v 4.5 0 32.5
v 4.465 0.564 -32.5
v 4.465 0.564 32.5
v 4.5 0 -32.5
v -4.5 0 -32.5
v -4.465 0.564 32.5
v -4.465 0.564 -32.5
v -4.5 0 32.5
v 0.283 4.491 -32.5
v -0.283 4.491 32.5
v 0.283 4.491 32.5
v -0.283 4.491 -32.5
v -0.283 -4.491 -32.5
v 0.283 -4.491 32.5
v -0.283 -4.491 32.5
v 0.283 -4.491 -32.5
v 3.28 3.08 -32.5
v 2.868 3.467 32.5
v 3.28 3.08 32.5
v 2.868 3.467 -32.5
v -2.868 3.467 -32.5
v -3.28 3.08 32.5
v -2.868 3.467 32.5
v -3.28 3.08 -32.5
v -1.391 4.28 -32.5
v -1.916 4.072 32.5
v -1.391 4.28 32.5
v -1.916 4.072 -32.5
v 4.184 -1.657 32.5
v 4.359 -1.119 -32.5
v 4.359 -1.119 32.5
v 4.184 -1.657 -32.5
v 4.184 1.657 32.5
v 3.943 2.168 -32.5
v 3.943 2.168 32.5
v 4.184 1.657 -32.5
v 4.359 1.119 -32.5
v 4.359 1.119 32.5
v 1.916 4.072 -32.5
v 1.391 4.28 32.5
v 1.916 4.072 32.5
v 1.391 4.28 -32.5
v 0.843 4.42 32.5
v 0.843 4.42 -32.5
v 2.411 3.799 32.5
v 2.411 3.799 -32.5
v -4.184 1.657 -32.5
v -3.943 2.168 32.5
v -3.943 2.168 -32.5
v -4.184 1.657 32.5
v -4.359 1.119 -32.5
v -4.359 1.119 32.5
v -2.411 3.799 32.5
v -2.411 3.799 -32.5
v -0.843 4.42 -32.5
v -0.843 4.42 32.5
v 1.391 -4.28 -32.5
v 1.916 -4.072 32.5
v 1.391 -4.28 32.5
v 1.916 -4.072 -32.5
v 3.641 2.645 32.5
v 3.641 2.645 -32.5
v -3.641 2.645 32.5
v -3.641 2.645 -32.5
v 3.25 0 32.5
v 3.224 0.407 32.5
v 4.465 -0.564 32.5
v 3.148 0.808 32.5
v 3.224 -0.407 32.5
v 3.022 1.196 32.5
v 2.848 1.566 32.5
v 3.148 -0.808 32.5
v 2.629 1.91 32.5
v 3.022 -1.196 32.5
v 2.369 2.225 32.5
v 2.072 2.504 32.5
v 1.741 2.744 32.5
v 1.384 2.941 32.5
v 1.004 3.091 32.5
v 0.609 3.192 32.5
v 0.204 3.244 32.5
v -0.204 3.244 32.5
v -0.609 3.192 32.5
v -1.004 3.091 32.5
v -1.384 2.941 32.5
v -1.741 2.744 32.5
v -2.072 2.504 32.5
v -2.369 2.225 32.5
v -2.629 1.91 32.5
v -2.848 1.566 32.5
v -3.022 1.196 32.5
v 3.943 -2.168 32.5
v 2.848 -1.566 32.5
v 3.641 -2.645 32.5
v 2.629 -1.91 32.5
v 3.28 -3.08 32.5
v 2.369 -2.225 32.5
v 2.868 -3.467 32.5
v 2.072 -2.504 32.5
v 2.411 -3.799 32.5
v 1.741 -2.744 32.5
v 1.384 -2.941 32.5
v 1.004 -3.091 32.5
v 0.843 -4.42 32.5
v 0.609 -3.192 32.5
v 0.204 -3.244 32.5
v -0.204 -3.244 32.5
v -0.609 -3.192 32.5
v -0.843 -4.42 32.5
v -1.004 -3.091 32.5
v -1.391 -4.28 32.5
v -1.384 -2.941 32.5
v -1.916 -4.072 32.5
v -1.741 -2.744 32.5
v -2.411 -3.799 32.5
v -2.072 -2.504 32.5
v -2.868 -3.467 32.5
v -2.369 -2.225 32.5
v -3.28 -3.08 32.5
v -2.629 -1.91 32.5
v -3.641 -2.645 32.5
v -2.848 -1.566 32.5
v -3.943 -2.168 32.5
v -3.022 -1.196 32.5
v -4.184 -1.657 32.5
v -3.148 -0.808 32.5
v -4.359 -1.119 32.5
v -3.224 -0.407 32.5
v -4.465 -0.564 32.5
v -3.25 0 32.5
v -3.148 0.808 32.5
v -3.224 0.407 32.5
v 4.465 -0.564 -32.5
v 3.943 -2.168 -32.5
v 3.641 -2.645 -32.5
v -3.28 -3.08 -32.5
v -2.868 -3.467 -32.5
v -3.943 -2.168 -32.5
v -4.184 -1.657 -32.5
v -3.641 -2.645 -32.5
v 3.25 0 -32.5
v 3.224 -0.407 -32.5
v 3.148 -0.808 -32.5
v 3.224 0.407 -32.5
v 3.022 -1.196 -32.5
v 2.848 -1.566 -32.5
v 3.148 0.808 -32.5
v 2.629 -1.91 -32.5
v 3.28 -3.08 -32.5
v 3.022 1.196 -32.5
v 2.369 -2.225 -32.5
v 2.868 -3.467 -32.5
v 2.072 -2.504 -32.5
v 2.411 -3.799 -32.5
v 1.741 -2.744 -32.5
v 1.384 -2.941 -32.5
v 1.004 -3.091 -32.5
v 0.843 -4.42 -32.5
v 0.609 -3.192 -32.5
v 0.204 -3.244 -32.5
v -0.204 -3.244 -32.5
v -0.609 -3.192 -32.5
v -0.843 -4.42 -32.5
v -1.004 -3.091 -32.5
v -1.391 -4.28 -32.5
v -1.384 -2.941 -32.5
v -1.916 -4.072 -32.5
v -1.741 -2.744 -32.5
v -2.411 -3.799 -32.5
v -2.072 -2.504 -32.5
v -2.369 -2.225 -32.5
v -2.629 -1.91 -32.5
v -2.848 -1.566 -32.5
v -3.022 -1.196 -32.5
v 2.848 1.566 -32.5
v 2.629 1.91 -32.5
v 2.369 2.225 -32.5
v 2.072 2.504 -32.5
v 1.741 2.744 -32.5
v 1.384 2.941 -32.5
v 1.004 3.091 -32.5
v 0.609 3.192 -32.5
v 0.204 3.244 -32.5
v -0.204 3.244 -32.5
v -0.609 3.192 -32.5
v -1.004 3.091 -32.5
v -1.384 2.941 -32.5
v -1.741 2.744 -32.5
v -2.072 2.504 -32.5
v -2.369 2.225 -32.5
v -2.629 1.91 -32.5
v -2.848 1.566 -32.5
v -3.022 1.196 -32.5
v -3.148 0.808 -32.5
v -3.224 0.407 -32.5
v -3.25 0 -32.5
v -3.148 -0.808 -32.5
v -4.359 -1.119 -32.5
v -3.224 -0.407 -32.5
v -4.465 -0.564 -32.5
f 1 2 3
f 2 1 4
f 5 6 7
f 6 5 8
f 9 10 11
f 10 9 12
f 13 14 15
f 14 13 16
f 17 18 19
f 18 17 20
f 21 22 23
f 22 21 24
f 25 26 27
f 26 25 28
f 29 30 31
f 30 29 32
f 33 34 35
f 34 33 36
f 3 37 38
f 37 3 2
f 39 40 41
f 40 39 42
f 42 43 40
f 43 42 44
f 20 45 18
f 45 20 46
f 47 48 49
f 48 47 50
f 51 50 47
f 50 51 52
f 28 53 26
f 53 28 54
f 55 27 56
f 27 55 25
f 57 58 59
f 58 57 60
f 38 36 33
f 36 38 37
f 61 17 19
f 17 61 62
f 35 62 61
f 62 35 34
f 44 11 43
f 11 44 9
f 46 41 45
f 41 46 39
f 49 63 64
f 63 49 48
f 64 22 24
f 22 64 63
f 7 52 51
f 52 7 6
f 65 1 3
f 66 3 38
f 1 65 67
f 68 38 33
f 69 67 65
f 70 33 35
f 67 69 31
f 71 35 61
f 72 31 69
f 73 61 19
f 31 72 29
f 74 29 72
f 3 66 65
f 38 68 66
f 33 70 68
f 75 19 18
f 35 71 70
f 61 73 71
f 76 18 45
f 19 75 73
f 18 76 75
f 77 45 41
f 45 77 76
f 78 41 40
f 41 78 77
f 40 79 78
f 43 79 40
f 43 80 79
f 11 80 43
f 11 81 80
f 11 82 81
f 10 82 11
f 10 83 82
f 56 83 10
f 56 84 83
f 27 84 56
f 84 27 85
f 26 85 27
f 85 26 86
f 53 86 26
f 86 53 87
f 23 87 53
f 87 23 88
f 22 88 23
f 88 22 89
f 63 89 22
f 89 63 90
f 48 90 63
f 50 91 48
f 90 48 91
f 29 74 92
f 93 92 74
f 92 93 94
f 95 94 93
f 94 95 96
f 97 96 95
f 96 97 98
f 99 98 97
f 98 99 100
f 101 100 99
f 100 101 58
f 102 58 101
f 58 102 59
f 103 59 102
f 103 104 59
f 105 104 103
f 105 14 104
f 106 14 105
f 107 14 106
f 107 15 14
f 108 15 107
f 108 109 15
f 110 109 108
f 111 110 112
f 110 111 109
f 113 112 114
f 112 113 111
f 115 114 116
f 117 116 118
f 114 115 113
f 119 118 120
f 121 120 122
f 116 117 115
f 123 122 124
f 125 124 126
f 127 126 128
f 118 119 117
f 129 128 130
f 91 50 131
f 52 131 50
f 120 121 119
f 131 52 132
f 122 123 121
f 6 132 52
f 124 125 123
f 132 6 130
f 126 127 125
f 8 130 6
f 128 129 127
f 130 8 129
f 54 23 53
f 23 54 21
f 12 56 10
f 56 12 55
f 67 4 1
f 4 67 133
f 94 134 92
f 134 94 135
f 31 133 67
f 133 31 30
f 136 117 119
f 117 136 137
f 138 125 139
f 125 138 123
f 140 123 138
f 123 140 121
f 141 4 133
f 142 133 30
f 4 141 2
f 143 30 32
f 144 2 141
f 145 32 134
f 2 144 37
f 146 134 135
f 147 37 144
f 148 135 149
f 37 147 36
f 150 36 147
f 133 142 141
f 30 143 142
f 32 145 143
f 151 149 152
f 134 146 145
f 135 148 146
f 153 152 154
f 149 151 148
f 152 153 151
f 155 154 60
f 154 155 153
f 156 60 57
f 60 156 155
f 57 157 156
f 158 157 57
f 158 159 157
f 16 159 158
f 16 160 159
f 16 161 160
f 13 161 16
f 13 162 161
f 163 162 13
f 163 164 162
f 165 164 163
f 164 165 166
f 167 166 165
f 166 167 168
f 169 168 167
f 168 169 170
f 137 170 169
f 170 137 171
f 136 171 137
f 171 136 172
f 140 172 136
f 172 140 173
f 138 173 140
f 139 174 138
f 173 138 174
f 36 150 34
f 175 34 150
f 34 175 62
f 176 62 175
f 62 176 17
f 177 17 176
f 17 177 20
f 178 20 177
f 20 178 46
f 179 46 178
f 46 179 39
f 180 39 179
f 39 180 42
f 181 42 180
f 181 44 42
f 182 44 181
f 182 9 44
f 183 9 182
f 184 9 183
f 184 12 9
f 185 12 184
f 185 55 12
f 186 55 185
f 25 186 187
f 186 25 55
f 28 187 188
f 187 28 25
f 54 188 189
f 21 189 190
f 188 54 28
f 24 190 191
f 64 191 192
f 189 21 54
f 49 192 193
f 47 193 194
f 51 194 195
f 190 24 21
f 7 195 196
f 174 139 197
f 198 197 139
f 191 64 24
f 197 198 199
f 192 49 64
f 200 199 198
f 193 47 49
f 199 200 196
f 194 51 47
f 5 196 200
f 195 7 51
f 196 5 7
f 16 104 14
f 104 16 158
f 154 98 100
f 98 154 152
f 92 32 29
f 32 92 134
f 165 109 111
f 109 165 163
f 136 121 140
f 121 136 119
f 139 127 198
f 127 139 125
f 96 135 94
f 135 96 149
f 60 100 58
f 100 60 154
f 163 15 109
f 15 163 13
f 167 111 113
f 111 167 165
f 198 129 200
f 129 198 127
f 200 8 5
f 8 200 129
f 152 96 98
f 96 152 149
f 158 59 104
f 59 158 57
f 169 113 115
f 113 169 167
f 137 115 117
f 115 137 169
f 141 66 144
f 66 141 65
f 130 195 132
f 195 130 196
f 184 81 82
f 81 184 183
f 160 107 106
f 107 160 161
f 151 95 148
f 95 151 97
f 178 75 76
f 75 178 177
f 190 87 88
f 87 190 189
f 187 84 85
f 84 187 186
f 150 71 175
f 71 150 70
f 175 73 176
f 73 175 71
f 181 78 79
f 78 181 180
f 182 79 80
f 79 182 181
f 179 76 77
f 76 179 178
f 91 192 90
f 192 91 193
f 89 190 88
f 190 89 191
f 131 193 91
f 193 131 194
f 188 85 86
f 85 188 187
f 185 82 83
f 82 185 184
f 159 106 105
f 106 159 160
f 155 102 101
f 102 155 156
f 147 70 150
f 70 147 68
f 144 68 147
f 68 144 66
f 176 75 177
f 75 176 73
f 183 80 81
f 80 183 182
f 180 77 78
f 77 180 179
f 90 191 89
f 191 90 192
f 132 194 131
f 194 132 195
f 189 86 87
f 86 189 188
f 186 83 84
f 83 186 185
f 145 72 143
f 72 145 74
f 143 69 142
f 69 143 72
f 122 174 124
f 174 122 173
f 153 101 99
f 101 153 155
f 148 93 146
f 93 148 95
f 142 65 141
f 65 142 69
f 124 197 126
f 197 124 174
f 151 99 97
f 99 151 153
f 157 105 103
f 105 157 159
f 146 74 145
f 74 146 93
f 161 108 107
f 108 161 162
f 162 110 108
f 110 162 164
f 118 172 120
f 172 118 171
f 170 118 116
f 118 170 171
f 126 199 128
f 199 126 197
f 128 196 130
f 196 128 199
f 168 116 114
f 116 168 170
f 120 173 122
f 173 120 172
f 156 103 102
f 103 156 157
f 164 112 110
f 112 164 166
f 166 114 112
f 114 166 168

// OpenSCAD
$fn = 50;


difference() {
	union() {
		translate(v = [0, 0, -32.5000000000]) {
			cylinder(h = 65, r = 4.5000000000);
		}
	}
	union() {
		translate(v = [0, 0, -100.0000000000]) {
			cylinder(h = 200, r = 3.2500000000);
		}
	}
}
